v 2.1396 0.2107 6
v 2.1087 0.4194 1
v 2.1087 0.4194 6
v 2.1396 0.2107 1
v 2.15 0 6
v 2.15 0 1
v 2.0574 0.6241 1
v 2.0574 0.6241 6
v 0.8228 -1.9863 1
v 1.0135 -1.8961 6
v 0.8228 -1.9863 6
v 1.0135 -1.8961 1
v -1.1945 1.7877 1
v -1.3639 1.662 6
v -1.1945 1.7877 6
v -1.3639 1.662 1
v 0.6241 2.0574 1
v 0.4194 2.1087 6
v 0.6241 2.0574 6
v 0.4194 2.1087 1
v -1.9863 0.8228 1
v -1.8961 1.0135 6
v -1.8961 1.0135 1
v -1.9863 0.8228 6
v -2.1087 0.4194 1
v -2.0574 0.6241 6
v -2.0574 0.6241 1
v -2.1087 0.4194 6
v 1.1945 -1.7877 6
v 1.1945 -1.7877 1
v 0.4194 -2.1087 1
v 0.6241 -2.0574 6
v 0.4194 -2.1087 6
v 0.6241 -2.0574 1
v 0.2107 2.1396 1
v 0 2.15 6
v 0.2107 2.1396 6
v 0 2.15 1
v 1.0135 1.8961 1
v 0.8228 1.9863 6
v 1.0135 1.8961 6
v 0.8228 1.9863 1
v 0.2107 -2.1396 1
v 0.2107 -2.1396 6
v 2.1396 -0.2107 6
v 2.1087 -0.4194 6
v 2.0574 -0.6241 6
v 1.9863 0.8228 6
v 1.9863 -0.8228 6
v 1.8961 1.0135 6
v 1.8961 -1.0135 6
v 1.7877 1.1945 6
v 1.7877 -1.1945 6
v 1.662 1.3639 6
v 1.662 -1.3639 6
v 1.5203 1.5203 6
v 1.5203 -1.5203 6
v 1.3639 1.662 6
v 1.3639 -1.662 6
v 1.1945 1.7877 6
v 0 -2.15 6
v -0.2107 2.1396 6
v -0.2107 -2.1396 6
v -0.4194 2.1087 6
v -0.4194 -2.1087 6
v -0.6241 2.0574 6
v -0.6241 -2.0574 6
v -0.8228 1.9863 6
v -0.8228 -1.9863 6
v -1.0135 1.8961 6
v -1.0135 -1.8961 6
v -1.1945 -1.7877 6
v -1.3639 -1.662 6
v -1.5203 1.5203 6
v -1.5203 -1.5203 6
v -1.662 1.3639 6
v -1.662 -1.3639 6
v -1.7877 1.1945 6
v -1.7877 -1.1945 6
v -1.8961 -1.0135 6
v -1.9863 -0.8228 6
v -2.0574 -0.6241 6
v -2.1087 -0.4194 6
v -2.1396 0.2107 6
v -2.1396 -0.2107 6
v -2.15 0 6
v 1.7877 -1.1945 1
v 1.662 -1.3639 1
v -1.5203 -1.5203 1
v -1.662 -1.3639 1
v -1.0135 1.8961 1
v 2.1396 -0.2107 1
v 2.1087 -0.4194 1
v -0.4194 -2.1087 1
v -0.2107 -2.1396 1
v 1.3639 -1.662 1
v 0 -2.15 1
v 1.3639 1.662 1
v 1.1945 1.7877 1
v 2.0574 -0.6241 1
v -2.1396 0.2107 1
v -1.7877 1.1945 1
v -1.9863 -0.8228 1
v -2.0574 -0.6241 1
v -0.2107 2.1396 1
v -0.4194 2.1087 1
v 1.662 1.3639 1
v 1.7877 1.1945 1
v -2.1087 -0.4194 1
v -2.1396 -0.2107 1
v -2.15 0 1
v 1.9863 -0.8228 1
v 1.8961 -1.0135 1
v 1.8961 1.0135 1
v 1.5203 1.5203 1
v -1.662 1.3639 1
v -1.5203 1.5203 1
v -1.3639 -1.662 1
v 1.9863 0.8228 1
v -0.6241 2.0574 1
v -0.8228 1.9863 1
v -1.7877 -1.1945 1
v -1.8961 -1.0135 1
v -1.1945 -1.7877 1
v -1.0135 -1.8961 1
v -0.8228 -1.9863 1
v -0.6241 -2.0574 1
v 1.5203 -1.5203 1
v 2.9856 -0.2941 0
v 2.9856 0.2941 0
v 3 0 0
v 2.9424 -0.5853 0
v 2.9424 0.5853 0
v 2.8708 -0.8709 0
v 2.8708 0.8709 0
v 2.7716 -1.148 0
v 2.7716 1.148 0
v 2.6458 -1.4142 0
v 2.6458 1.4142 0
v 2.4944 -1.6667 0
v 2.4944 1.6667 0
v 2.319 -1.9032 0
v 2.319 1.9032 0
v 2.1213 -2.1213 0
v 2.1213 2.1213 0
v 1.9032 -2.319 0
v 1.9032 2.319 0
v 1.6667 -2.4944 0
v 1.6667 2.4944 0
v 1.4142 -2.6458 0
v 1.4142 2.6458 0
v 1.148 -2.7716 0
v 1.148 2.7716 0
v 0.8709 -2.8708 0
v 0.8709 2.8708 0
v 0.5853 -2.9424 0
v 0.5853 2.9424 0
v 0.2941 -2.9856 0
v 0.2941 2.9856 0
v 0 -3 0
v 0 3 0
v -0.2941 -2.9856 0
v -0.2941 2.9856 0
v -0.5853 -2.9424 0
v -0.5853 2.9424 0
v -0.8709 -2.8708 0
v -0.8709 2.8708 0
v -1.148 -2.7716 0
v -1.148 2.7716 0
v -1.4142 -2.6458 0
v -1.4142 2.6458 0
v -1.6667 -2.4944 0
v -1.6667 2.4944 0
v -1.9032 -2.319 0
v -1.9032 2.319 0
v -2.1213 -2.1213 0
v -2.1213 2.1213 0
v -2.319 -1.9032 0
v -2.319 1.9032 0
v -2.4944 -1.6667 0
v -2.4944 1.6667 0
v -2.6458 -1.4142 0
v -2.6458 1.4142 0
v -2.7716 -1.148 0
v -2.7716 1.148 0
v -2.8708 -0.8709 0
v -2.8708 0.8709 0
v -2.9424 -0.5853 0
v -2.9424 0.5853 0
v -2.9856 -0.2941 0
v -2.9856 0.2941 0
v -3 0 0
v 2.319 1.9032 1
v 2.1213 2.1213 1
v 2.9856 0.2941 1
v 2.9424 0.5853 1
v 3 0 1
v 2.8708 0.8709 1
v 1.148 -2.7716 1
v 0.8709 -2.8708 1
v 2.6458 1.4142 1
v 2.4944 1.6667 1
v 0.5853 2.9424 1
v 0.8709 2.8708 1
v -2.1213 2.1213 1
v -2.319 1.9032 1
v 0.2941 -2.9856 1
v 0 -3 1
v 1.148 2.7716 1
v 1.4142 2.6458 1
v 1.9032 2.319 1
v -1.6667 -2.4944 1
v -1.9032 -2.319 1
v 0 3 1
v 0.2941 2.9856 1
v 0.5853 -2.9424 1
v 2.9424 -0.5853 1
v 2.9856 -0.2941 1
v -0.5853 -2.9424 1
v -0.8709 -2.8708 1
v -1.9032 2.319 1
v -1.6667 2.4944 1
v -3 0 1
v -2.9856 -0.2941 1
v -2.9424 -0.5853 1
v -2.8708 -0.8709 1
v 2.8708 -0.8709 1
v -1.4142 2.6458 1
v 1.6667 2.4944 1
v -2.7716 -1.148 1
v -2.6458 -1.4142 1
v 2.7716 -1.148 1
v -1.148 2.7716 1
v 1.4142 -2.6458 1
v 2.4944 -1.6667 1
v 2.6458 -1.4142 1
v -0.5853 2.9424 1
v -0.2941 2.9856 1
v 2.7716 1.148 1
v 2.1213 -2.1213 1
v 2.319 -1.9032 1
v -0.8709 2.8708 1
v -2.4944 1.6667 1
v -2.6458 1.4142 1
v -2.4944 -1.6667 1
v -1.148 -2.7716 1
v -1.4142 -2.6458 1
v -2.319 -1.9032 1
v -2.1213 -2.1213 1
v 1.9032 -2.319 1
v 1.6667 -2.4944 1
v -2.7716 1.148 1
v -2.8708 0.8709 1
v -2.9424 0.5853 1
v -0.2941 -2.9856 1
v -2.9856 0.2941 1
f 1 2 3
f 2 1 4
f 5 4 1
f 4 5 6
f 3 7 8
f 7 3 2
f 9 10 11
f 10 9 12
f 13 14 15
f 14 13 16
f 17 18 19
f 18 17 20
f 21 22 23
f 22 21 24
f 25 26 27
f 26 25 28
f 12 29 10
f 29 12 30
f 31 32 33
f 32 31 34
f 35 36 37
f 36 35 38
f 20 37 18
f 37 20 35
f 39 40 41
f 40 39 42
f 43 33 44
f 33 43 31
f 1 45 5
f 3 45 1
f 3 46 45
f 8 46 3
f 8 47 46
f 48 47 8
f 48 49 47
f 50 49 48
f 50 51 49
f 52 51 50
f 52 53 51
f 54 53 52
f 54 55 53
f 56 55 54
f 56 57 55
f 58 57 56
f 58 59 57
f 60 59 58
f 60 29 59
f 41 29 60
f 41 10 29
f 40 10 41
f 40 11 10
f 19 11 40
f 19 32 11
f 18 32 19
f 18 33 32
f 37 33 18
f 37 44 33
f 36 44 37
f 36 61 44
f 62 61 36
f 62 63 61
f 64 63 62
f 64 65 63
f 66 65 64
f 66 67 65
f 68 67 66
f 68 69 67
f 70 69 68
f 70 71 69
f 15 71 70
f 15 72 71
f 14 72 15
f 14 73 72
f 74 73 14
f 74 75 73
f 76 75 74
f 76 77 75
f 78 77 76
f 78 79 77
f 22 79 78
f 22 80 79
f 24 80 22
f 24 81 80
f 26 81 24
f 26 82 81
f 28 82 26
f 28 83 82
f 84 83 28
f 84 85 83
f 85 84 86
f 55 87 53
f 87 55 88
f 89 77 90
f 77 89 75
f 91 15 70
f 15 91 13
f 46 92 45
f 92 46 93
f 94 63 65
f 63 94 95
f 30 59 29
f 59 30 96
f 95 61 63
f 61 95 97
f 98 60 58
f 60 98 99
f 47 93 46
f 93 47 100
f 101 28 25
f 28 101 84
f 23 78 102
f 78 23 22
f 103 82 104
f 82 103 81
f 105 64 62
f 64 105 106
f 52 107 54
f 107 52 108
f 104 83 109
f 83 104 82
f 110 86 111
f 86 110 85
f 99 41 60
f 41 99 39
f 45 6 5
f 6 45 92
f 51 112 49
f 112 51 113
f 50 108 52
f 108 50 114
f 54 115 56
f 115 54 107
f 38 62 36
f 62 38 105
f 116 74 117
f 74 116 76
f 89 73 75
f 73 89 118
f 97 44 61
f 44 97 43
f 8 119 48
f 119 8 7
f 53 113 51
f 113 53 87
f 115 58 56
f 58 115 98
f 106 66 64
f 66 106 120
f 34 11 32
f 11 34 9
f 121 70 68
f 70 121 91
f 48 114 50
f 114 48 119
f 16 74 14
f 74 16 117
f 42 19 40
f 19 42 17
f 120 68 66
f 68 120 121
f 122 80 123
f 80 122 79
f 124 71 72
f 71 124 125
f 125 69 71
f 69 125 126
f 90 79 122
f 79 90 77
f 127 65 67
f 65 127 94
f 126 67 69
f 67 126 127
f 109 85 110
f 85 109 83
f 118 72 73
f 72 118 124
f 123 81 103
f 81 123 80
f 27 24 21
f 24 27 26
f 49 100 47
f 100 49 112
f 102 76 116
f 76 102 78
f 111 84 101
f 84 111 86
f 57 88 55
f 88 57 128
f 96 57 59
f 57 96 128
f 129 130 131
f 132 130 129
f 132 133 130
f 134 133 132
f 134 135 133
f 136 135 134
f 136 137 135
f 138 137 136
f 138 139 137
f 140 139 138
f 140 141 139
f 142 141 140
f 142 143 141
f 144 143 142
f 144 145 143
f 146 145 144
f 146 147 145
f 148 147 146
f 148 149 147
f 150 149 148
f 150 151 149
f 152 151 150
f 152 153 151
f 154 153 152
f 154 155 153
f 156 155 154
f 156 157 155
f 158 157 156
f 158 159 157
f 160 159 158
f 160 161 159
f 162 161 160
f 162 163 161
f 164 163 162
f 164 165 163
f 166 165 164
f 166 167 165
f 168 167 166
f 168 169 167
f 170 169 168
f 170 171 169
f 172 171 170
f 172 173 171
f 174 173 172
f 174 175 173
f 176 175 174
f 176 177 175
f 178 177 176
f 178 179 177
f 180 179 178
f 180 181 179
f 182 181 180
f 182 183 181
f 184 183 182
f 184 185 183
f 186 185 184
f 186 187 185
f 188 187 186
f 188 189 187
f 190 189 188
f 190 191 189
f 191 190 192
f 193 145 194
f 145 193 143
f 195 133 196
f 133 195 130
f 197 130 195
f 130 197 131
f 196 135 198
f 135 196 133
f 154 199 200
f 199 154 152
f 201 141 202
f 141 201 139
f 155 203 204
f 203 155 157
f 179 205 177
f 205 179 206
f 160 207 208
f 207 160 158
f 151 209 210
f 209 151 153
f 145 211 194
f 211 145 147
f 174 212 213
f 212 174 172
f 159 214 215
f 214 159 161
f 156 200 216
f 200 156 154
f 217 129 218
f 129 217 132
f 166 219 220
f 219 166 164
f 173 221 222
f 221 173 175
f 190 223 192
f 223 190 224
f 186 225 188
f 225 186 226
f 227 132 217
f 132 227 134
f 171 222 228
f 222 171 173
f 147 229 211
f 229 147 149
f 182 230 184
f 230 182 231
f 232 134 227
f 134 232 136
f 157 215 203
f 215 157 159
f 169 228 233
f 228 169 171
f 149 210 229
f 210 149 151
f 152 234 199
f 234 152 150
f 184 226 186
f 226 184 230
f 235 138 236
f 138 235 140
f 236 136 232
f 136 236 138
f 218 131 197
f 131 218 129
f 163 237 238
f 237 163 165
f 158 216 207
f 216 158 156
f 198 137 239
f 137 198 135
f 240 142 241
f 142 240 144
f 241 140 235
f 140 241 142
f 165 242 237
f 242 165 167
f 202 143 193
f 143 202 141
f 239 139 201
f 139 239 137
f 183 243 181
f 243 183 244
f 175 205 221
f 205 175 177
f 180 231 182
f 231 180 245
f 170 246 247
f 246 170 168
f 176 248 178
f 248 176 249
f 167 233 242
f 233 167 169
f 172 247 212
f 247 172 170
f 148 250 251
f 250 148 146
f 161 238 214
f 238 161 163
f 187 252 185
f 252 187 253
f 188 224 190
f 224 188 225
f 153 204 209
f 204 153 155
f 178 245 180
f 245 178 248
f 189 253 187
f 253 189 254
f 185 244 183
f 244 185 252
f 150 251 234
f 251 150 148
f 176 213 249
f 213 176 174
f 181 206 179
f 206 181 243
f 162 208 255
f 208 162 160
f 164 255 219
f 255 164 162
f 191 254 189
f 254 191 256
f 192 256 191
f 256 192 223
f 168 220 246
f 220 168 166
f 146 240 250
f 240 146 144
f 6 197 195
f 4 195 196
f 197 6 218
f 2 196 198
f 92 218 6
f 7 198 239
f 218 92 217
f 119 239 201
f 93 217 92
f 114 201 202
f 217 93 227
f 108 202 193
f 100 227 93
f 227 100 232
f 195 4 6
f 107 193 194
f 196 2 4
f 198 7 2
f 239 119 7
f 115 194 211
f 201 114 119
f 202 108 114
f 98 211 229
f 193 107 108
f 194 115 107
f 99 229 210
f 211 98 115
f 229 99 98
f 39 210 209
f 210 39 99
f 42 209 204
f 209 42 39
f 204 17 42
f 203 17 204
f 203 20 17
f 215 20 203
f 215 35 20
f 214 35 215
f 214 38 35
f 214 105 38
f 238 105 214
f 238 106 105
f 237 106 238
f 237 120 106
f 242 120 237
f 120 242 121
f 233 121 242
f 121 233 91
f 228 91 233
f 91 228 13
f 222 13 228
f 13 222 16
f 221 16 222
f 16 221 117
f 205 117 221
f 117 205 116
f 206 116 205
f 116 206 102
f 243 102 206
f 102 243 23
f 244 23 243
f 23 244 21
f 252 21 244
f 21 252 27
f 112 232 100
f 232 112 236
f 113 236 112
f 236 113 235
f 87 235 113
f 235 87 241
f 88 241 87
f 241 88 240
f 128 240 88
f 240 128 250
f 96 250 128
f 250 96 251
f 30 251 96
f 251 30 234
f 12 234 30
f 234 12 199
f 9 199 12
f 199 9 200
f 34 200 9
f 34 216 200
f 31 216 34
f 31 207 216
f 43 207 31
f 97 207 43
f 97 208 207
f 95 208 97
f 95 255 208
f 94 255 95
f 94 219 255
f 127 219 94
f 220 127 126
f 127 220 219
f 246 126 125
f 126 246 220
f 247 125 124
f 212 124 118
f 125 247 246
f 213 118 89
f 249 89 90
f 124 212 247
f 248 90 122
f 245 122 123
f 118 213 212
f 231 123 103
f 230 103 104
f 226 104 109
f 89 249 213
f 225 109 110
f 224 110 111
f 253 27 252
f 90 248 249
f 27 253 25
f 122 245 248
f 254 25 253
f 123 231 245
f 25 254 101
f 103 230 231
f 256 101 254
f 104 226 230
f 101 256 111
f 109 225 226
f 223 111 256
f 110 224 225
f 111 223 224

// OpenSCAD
$fn = 64;

// --- параметры ---
stem_d   = 4.3;   // диаметр штока
stem_h   = 6;     // длина штока (от шайбы до верха)
flange_d = 6;     // диаметр шайбы
flange_h = 1;     // толщина шайбы

// -----------------------------------------------

union() {
    cylinder(h = stem_h, d = stem_d);
    cylinder(h = flange_h, d = flange_d);
}
